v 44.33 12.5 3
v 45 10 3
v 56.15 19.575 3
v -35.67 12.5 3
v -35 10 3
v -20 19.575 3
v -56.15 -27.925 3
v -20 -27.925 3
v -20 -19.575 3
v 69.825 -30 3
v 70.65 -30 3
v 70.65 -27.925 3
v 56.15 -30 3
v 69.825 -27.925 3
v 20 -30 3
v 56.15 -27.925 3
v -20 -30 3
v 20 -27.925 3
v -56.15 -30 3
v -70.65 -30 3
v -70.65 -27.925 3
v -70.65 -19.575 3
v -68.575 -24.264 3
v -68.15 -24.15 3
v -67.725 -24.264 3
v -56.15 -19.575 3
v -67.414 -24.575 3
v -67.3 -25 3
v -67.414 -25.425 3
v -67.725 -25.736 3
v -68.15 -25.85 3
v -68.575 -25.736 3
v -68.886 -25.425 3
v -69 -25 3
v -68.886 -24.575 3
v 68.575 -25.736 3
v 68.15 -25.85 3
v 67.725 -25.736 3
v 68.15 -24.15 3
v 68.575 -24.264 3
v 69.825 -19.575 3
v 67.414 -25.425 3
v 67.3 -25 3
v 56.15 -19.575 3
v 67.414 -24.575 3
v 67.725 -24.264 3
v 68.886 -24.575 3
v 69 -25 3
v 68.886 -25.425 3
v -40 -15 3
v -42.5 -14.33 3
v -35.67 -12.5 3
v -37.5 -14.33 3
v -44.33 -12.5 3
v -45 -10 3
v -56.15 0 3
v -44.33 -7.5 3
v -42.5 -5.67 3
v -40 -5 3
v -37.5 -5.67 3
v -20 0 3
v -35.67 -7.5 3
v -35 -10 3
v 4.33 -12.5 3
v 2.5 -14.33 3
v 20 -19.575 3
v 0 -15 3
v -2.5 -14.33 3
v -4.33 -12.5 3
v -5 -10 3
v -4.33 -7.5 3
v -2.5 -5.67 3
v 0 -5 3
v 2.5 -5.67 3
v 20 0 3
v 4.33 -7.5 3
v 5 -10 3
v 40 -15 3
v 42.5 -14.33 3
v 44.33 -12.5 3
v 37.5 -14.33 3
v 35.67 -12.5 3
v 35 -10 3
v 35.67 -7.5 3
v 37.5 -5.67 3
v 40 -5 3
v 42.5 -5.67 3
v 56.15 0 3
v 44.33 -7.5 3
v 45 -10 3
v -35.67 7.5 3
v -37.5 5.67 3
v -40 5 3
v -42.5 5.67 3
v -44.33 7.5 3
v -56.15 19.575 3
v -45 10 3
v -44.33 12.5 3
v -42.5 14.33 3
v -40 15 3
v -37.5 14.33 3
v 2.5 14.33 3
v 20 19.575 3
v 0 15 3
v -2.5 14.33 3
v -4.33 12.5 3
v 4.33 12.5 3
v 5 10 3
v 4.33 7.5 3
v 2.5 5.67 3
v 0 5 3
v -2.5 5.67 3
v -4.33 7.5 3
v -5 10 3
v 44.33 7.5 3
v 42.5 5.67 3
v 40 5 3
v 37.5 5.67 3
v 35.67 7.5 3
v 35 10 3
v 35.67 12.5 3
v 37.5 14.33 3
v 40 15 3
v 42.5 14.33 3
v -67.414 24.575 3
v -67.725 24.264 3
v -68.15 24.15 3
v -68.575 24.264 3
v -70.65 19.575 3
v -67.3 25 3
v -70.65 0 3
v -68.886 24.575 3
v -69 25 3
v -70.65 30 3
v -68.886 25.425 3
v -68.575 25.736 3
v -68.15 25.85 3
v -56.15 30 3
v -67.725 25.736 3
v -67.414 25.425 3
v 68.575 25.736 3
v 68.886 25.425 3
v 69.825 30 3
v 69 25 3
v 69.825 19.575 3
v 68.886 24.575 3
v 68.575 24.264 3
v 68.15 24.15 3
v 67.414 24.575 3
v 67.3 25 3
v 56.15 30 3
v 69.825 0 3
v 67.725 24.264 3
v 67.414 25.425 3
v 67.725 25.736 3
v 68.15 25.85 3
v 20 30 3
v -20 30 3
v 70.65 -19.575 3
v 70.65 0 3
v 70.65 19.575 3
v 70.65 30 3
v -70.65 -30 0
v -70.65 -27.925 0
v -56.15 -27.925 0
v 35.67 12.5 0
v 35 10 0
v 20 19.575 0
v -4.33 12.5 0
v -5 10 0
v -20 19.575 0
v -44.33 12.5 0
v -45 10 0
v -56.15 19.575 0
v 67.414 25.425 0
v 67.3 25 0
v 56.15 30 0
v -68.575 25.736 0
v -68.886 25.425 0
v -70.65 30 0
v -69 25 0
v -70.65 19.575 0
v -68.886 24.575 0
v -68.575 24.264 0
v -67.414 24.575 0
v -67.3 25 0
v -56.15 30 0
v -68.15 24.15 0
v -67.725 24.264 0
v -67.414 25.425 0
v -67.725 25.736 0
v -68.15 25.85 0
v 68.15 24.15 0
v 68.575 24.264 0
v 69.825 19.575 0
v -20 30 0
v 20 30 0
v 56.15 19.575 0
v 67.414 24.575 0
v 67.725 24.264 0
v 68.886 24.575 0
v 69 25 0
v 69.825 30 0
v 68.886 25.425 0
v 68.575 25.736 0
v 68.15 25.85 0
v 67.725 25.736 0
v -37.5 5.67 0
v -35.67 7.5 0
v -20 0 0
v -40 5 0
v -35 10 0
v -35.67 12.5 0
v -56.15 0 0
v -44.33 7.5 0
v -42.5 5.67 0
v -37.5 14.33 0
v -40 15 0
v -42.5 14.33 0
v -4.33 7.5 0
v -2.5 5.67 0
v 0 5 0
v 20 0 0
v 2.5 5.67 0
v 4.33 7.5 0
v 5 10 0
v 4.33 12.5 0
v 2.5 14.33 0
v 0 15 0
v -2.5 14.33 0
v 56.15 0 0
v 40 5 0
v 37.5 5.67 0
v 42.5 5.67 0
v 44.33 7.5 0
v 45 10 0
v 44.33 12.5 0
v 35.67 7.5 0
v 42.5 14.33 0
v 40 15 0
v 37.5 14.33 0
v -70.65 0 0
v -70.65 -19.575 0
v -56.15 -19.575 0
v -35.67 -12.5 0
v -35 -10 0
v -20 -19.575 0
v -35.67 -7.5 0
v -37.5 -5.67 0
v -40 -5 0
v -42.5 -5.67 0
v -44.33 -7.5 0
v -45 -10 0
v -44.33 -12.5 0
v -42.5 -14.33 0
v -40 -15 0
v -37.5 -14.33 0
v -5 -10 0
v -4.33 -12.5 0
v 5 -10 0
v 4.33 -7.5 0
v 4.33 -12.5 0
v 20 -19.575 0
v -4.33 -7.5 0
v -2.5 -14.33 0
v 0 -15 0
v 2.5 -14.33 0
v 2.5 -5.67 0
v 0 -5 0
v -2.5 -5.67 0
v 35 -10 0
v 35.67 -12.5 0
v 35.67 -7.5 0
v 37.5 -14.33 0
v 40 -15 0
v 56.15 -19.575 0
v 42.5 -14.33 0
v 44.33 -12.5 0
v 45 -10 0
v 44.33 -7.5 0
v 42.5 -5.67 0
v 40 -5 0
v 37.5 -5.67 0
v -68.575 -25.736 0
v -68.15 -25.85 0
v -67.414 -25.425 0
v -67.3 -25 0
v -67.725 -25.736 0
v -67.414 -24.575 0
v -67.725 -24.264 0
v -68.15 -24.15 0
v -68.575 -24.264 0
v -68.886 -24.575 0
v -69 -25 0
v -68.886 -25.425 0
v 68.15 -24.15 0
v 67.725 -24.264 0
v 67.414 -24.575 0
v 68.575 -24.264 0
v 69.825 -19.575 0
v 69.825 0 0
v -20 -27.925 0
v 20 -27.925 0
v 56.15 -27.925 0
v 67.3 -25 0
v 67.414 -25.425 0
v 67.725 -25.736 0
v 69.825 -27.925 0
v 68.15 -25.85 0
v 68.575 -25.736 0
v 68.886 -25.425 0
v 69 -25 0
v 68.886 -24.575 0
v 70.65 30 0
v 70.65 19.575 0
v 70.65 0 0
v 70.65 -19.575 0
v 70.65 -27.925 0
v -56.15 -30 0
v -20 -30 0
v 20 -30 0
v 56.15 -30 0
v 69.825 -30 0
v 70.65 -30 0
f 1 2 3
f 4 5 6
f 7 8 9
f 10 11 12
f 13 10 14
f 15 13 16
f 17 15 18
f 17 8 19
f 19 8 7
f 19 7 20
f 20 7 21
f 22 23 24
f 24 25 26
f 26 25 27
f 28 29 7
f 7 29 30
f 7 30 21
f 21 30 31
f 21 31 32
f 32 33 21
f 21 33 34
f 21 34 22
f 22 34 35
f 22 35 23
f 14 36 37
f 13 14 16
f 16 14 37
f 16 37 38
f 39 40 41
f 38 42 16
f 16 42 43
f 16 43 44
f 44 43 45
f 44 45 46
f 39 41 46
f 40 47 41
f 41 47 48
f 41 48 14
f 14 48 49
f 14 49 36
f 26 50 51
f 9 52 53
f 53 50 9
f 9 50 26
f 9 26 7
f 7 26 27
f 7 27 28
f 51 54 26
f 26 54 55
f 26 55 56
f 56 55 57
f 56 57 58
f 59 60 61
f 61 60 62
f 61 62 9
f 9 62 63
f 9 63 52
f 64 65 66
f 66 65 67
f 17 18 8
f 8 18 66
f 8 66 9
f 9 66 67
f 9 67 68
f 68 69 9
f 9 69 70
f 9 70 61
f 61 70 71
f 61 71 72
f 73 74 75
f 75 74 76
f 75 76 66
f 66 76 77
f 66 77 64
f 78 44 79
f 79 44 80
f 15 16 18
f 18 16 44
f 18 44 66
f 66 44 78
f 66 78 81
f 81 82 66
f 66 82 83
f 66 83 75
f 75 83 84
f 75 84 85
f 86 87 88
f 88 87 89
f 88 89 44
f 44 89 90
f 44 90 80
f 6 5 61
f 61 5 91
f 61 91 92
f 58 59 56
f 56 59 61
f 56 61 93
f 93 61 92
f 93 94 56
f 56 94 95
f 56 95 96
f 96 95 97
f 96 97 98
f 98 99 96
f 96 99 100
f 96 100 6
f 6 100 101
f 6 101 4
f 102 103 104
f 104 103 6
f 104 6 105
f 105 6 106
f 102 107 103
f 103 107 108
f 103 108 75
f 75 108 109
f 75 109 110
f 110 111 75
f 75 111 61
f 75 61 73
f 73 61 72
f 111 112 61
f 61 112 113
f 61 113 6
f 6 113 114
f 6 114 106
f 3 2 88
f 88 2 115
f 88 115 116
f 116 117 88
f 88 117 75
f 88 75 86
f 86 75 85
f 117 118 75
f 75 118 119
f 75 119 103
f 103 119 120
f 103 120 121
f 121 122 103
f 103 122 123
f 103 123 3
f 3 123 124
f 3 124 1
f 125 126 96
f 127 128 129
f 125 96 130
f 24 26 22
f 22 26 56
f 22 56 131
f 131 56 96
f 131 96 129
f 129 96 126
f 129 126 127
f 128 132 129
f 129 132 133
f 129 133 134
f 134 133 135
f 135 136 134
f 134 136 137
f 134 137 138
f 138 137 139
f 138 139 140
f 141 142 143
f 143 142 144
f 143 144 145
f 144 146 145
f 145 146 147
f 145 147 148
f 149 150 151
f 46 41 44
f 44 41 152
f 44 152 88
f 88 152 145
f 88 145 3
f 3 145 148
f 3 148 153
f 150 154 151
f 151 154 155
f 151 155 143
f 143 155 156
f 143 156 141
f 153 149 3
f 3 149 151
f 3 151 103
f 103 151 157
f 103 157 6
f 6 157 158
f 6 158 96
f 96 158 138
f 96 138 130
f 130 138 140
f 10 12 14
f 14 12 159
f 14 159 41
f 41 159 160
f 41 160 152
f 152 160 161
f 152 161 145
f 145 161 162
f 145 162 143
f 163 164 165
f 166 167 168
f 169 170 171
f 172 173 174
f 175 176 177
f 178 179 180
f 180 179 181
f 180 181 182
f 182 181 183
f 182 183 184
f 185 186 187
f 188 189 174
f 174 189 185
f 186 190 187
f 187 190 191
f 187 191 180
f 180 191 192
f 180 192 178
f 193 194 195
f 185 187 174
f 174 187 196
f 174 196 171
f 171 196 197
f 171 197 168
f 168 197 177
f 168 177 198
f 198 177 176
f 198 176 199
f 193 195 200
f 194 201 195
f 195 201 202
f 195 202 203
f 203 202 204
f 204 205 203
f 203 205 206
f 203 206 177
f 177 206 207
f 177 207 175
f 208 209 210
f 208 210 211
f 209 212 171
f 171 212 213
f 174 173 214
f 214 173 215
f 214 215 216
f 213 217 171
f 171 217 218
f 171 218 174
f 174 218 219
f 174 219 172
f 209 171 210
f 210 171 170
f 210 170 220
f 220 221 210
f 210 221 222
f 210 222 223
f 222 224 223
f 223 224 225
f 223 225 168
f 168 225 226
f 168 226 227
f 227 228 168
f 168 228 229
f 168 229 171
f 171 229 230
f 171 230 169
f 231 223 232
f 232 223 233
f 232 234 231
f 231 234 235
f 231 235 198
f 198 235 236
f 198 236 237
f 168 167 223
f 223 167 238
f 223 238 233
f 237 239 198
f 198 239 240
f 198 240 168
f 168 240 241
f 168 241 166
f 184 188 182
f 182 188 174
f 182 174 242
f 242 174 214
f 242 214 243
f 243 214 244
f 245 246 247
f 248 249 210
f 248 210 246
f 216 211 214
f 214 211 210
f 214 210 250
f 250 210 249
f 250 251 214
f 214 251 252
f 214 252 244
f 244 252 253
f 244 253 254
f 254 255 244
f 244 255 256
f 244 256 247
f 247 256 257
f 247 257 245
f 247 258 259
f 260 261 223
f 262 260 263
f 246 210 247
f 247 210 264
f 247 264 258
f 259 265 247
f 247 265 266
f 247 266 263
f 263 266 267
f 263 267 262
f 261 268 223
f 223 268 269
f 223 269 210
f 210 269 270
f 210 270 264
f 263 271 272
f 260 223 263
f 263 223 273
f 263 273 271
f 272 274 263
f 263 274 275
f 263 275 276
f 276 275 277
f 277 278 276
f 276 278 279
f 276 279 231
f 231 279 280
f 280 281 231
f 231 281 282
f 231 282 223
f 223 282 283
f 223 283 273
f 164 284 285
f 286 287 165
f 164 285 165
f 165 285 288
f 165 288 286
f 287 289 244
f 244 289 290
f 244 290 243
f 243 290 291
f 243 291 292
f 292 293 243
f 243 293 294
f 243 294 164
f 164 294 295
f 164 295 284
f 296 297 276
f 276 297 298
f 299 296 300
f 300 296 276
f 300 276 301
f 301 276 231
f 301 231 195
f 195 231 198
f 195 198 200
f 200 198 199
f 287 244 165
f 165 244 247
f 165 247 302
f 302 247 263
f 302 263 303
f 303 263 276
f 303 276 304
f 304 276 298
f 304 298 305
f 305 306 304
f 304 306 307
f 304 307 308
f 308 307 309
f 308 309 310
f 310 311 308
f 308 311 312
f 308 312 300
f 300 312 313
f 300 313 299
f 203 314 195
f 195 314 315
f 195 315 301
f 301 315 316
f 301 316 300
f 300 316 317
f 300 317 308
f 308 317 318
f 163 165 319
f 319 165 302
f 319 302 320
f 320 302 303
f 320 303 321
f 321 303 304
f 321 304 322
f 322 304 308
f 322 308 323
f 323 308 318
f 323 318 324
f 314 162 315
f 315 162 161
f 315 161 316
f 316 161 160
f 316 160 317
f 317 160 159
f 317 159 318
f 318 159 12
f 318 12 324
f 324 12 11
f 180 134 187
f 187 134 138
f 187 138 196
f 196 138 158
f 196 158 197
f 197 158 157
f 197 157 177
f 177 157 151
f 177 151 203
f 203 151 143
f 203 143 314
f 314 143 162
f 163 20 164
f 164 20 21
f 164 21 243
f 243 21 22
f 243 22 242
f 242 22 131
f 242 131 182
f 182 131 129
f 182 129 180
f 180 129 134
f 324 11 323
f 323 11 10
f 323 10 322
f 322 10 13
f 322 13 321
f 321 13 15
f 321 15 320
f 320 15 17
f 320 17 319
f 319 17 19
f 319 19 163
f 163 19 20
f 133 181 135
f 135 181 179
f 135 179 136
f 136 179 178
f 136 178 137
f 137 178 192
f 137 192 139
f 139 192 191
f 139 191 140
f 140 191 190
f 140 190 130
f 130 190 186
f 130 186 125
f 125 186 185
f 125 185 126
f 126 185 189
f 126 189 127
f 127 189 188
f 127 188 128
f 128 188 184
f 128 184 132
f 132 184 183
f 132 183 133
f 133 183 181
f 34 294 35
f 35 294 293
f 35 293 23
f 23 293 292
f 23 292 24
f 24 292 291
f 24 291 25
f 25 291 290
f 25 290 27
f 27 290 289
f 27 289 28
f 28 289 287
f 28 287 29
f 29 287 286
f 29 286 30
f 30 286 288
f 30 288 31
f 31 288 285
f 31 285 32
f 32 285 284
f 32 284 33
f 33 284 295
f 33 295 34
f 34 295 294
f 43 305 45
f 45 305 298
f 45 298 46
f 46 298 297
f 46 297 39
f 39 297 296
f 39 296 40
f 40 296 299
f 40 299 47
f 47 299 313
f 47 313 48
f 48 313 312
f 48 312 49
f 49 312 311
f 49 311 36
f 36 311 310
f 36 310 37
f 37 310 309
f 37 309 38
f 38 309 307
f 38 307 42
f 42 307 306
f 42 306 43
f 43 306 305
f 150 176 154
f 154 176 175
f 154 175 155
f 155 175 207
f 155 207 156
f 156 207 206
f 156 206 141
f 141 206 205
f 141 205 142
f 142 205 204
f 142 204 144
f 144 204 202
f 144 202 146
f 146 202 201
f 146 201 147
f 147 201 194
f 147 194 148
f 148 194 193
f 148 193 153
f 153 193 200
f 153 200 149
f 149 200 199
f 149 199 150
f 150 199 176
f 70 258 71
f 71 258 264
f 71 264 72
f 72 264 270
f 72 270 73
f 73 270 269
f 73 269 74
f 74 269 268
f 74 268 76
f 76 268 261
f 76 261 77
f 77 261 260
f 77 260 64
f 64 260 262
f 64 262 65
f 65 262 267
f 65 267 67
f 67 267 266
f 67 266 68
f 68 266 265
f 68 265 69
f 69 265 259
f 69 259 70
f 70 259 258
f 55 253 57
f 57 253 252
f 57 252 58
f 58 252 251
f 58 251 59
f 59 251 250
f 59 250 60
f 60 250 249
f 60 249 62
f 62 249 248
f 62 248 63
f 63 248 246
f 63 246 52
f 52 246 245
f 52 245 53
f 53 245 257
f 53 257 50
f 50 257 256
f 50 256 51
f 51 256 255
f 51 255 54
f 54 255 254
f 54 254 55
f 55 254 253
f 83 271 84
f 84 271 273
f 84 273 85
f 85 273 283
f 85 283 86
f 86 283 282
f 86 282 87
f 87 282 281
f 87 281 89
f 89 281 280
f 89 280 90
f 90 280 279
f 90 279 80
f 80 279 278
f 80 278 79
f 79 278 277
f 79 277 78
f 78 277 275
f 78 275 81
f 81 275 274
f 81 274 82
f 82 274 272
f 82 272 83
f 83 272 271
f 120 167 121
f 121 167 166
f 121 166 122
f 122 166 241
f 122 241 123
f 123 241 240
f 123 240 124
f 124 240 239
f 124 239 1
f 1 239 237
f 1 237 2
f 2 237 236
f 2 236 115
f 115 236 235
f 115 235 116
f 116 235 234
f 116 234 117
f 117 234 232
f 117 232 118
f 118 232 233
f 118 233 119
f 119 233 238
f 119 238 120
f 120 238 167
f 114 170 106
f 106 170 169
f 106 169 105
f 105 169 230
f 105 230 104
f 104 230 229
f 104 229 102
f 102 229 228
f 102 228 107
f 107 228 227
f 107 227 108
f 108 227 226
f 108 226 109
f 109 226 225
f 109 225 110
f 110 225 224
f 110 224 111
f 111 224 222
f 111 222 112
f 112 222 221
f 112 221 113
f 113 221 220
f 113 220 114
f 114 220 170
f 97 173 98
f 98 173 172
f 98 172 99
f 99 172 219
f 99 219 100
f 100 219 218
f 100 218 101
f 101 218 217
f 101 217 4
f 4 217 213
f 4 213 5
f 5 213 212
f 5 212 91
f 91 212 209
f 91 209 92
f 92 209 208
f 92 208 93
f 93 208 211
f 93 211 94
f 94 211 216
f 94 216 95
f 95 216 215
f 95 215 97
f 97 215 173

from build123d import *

# Parameters (mm, degrees)
SKETCH1_W           = 141.3
SKETCH1_H           = 60
SKETCH1_R           = 0.85
SKETCH1_R_2         = 5
BOSS_EXTRUDE1_DEPTH = 3


with BuildPart() as part:
    # Sketch1 → Boss-Extrude1 (new body)
    with BuildSketch(Plane.XY):
        Rectangle(SKETCH1_W, SKETCH1_H)
        with Locations((-68.15, 25)):
            Circle(SKETCH1_R, mode=Mode.SUBTRACT)
        with Locations(Location((-68.15, -25, 0), (0, 0, 180))):
            Circle(SKETCH1_R, mode=Mode.SUBTRACT)
        with Locations((68.15, -25)):
            Circle(SKETCH1_R, mode=Mode.SUBTRACT)
        with Locations(Location((68.15, 25, 0), (0, 0, 180))):
            Circle(SKETCH1_R, mode=Mode.SUBTRACT)
        with Locations((0, -10)):
            Circle(SKETCH1_R_2, mode=Mode.SUBTRACT)
        with Locations((-40, -10)):
            Circle(SKETCH1_R_2, mode=Mode.SUBTRACT)
        with Locations(Location((40, -10, 0), (0, 0, 180))):
            Circle(SKETCH1_R_2, mode=Mode.SUBTRACT)
        with Locations((40, 10)):
            Circle(SKETCH1_R_2, mode=Mode.SUBTRACT)
        with Locations(Location((0, 10, 0), (0, 0, 180))):
            Circle(SKETCH1_R_2, mode=Mode.SUBTRACT)
        with Locations(Location((-40, 10, 0), (0, 0, 180))):
            Circle(SKETCH1_R_2, mode=Mode.SUBTRACT)
    extrude(amount=BOSS_EXTRUDE1_DEPTH)


solid = part.part
